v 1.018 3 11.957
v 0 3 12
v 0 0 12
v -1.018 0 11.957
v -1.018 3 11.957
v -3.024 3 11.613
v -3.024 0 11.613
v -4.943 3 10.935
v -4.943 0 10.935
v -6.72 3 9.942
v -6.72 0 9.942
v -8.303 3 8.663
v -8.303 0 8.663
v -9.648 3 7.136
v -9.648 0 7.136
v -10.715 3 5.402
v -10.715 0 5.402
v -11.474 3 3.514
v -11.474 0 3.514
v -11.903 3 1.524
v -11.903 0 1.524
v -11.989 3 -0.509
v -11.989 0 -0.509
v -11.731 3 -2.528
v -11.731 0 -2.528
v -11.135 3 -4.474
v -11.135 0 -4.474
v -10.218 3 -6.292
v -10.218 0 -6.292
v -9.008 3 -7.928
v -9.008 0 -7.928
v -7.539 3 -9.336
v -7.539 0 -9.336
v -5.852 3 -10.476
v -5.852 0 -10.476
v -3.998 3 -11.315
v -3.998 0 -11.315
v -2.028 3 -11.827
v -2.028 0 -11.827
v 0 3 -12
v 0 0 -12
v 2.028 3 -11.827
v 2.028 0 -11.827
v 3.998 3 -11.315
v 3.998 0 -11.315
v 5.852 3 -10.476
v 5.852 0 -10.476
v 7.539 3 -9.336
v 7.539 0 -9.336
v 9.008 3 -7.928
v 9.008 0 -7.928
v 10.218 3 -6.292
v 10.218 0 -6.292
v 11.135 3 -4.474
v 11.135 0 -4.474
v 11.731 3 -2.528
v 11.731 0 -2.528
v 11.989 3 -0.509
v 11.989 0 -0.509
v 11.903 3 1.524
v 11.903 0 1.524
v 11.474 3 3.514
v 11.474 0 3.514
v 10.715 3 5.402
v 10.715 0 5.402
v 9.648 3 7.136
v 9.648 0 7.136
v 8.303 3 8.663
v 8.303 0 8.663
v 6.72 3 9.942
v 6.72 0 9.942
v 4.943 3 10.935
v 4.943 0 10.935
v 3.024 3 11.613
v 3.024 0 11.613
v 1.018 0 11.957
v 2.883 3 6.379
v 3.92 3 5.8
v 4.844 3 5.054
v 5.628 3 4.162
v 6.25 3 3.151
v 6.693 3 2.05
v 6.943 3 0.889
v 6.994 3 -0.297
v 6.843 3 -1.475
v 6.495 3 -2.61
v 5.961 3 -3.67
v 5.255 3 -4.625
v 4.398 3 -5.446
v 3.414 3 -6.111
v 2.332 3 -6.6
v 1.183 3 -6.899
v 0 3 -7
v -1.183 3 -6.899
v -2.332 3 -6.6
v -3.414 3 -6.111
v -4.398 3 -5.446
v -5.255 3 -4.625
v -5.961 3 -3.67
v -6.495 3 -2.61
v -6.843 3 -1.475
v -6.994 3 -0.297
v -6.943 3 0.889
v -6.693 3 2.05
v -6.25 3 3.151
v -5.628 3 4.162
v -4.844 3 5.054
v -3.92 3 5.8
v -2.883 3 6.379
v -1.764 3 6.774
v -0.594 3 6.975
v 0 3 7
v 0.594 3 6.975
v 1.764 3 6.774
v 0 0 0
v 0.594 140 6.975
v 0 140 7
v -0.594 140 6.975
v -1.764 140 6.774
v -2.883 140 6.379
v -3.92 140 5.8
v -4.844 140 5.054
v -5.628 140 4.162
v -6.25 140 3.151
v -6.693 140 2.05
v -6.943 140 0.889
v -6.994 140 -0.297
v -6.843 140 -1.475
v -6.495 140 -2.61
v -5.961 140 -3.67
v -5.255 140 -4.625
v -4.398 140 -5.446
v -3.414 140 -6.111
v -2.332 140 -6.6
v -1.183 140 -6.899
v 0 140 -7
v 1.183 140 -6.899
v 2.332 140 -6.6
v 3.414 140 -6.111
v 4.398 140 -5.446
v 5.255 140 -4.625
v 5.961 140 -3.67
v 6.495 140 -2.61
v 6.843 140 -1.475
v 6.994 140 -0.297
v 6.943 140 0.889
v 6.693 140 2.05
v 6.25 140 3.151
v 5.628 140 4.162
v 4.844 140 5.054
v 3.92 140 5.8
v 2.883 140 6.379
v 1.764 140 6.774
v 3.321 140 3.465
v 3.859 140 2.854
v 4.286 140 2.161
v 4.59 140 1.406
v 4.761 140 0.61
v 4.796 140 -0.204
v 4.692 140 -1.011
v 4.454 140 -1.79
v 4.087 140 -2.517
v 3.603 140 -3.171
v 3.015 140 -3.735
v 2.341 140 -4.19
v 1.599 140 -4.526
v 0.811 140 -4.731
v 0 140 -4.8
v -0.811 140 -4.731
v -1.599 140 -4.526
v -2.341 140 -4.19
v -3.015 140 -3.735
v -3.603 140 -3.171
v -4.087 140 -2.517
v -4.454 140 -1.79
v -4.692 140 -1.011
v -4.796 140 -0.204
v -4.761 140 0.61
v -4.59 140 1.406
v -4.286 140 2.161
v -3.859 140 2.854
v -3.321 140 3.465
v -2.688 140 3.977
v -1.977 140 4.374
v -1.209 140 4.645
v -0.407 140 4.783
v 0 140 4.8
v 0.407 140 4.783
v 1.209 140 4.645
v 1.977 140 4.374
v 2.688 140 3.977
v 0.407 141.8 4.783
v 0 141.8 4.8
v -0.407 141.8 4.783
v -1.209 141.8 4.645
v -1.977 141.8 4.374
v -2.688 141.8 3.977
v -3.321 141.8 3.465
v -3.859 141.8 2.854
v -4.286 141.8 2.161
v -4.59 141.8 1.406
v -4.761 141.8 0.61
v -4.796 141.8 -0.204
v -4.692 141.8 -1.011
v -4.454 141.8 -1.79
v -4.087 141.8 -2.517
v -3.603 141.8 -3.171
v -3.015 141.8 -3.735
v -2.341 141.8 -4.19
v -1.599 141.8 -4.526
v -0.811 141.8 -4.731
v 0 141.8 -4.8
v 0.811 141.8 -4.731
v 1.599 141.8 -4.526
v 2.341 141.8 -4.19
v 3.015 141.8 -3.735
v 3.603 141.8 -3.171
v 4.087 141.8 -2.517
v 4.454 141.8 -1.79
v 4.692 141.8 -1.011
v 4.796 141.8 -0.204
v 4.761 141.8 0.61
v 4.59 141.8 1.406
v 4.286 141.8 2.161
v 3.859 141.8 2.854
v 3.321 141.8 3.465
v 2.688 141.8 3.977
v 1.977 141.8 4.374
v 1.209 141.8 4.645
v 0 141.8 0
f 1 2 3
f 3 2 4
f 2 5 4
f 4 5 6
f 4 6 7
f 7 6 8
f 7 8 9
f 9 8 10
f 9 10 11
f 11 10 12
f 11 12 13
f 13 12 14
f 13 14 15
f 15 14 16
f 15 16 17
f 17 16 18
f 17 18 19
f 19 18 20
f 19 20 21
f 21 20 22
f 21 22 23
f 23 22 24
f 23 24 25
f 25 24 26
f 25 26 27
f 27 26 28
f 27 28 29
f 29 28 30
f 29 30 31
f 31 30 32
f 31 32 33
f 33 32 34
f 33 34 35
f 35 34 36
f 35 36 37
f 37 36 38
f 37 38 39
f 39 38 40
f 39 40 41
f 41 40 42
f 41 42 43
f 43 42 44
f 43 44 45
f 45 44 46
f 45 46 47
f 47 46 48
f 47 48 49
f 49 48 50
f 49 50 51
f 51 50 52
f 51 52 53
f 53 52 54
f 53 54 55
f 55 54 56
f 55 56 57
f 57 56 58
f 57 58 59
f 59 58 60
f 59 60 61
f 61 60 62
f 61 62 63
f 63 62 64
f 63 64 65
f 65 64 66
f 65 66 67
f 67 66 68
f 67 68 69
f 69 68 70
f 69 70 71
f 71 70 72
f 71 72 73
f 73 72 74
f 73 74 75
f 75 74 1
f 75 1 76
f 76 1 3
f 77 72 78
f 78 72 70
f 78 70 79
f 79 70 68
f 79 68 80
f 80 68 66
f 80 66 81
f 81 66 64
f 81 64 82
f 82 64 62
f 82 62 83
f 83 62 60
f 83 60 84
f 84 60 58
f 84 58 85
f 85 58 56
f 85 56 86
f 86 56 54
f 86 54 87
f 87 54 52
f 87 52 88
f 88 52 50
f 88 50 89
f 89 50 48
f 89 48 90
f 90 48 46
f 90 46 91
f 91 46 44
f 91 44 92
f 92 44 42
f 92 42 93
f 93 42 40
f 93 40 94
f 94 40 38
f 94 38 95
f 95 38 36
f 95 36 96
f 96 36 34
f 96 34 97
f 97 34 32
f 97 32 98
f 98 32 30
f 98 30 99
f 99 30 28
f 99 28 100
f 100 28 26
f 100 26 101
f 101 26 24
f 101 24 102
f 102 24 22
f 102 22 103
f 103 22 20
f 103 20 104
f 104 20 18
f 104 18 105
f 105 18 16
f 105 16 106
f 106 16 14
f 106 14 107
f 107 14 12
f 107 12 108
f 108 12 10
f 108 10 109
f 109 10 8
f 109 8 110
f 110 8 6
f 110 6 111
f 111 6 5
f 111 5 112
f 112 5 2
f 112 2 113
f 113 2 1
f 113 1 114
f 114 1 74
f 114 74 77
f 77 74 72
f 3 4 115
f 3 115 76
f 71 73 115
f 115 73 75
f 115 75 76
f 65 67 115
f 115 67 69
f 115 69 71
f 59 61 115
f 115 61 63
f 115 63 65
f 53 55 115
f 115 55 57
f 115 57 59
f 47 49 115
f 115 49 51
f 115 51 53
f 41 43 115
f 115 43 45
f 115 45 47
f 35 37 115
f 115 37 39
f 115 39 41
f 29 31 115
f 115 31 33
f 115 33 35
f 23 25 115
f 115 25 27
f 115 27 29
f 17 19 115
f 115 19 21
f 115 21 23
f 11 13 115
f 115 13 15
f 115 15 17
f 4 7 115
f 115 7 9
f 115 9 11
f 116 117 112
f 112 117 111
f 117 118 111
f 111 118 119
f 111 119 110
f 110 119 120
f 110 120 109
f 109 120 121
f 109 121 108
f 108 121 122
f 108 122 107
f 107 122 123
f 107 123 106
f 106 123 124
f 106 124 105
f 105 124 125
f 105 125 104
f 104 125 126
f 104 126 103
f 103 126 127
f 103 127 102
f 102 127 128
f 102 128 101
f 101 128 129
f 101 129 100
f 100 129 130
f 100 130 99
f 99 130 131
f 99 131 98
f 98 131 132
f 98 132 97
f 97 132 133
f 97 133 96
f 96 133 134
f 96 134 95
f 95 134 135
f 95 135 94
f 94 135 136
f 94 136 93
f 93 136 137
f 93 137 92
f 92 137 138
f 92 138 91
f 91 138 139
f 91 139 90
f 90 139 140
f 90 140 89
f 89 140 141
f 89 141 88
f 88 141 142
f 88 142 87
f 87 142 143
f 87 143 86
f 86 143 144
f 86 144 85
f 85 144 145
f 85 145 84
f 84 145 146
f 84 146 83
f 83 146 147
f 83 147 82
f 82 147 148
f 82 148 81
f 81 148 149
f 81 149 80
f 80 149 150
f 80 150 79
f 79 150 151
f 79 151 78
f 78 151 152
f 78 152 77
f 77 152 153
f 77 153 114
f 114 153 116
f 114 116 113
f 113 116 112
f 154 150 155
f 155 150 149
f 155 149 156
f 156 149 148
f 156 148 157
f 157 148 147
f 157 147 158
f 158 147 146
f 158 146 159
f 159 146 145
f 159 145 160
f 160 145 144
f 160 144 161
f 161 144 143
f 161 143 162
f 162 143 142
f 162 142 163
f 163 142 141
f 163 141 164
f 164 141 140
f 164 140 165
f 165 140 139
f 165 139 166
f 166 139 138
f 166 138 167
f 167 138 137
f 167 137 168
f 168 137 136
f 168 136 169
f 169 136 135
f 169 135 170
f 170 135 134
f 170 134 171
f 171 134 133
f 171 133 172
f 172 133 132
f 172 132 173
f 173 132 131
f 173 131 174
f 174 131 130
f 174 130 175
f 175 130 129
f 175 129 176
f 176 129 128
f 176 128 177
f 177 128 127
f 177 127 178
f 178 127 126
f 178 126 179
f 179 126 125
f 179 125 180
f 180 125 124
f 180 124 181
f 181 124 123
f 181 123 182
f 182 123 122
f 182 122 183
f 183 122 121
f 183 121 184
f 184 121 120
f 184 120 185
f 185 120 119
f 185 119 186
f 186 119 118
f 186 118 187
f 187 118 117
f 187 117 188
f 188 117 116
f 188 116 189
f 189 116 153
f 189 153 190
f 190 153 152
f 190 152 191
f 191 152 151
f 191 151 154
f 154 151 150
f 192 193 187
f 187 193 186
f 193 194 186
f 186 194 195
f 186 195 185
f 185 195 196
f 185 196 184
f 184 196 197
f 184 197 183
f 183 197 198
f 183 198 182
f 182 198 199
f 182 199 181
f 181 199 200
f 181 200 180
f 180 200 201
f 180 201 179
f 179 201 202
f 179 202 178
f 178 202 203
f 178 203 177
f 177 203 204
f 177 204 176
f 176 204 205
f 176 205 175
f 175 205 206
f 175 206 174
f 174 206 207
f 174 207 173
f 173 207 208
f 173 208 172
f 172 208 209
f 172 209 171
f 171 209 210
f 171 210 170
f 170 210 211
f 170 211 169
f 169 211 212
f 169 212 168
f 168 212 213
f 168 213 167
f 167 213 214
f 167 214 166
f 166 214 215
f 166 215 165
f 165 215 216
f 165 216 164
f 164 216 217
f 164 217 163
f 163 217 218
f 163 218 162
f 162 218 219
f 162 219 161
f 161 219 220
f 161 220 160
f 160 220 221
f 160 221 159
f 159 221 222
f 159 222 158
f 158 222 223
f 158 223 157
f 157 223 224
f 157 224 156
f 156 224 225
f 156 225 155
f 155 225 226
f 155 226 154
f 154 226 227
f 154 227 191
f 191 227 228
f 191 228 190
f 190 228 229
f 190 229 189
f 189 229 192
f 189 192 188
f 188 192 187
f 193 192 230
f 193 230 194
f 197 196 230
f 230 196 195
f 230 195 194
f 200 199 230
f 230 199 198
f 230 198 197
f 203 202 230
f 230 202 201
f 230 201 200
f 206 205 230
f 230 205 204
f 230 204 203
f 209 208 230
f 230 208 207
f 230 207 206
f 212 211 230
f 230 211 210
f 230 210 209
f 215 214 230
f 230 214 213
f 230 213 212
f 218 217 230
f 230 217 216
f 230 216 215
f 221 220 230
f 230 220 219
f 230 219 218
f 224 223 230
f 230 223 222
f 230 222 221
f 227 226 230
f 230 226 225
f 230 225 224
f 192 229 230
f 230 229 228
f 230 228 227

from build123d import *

# Parameters (mm, degrees)
SKETCH1_R         = 12
FOOT_FLANGE_DEPTH = 3
SKETCH2_R         = 7
LEG_DEPTH         = 140
SPIGOT_START      = 140
SKETCH3_R         = 4.8
SPIGOT_DEPTH      = 1.8


with BuildPart() as part:
    # Sketch1 → Foot_Flange (new body)
    with BuildSketch(Plane(origin=(0, 0, 0), x_dir=(1, 0, 0), z_dir=(0, 1, 0))):
        with Locations(Location((0, 0, 0), (0, 0, 270))):
            Circle(SKETCH1_R)
    extrude(amount=FOOT_FLANGE_DEPTH)

    # Sketch2 → Leg (add)
    with BuildSketch(Plane(origin=(0, 0, 0), x_dir=(1, 0, 0), z_dir=(0, 1, 0))):
        with Locations(Location((0, 0, 0), (0, 0, 270))):
            Circle(SKETCH2_R)
    extrude(amount=LEG_DEPTH)

    # Sketch3 → Spigot (add)
    with BuildSketch(Plane(origin=(0, 0, 0), x_dir=(1, 0, 0), z_dir=(0, 1, 0)).offset(SPIGOT_START)):
        with Locations(Location((0, 0, 0), (0, 0, 270))):
            Circle(SKETCH3_R)
    extrude(amount=SPIGOT_DEPTH)


solid = part.part
